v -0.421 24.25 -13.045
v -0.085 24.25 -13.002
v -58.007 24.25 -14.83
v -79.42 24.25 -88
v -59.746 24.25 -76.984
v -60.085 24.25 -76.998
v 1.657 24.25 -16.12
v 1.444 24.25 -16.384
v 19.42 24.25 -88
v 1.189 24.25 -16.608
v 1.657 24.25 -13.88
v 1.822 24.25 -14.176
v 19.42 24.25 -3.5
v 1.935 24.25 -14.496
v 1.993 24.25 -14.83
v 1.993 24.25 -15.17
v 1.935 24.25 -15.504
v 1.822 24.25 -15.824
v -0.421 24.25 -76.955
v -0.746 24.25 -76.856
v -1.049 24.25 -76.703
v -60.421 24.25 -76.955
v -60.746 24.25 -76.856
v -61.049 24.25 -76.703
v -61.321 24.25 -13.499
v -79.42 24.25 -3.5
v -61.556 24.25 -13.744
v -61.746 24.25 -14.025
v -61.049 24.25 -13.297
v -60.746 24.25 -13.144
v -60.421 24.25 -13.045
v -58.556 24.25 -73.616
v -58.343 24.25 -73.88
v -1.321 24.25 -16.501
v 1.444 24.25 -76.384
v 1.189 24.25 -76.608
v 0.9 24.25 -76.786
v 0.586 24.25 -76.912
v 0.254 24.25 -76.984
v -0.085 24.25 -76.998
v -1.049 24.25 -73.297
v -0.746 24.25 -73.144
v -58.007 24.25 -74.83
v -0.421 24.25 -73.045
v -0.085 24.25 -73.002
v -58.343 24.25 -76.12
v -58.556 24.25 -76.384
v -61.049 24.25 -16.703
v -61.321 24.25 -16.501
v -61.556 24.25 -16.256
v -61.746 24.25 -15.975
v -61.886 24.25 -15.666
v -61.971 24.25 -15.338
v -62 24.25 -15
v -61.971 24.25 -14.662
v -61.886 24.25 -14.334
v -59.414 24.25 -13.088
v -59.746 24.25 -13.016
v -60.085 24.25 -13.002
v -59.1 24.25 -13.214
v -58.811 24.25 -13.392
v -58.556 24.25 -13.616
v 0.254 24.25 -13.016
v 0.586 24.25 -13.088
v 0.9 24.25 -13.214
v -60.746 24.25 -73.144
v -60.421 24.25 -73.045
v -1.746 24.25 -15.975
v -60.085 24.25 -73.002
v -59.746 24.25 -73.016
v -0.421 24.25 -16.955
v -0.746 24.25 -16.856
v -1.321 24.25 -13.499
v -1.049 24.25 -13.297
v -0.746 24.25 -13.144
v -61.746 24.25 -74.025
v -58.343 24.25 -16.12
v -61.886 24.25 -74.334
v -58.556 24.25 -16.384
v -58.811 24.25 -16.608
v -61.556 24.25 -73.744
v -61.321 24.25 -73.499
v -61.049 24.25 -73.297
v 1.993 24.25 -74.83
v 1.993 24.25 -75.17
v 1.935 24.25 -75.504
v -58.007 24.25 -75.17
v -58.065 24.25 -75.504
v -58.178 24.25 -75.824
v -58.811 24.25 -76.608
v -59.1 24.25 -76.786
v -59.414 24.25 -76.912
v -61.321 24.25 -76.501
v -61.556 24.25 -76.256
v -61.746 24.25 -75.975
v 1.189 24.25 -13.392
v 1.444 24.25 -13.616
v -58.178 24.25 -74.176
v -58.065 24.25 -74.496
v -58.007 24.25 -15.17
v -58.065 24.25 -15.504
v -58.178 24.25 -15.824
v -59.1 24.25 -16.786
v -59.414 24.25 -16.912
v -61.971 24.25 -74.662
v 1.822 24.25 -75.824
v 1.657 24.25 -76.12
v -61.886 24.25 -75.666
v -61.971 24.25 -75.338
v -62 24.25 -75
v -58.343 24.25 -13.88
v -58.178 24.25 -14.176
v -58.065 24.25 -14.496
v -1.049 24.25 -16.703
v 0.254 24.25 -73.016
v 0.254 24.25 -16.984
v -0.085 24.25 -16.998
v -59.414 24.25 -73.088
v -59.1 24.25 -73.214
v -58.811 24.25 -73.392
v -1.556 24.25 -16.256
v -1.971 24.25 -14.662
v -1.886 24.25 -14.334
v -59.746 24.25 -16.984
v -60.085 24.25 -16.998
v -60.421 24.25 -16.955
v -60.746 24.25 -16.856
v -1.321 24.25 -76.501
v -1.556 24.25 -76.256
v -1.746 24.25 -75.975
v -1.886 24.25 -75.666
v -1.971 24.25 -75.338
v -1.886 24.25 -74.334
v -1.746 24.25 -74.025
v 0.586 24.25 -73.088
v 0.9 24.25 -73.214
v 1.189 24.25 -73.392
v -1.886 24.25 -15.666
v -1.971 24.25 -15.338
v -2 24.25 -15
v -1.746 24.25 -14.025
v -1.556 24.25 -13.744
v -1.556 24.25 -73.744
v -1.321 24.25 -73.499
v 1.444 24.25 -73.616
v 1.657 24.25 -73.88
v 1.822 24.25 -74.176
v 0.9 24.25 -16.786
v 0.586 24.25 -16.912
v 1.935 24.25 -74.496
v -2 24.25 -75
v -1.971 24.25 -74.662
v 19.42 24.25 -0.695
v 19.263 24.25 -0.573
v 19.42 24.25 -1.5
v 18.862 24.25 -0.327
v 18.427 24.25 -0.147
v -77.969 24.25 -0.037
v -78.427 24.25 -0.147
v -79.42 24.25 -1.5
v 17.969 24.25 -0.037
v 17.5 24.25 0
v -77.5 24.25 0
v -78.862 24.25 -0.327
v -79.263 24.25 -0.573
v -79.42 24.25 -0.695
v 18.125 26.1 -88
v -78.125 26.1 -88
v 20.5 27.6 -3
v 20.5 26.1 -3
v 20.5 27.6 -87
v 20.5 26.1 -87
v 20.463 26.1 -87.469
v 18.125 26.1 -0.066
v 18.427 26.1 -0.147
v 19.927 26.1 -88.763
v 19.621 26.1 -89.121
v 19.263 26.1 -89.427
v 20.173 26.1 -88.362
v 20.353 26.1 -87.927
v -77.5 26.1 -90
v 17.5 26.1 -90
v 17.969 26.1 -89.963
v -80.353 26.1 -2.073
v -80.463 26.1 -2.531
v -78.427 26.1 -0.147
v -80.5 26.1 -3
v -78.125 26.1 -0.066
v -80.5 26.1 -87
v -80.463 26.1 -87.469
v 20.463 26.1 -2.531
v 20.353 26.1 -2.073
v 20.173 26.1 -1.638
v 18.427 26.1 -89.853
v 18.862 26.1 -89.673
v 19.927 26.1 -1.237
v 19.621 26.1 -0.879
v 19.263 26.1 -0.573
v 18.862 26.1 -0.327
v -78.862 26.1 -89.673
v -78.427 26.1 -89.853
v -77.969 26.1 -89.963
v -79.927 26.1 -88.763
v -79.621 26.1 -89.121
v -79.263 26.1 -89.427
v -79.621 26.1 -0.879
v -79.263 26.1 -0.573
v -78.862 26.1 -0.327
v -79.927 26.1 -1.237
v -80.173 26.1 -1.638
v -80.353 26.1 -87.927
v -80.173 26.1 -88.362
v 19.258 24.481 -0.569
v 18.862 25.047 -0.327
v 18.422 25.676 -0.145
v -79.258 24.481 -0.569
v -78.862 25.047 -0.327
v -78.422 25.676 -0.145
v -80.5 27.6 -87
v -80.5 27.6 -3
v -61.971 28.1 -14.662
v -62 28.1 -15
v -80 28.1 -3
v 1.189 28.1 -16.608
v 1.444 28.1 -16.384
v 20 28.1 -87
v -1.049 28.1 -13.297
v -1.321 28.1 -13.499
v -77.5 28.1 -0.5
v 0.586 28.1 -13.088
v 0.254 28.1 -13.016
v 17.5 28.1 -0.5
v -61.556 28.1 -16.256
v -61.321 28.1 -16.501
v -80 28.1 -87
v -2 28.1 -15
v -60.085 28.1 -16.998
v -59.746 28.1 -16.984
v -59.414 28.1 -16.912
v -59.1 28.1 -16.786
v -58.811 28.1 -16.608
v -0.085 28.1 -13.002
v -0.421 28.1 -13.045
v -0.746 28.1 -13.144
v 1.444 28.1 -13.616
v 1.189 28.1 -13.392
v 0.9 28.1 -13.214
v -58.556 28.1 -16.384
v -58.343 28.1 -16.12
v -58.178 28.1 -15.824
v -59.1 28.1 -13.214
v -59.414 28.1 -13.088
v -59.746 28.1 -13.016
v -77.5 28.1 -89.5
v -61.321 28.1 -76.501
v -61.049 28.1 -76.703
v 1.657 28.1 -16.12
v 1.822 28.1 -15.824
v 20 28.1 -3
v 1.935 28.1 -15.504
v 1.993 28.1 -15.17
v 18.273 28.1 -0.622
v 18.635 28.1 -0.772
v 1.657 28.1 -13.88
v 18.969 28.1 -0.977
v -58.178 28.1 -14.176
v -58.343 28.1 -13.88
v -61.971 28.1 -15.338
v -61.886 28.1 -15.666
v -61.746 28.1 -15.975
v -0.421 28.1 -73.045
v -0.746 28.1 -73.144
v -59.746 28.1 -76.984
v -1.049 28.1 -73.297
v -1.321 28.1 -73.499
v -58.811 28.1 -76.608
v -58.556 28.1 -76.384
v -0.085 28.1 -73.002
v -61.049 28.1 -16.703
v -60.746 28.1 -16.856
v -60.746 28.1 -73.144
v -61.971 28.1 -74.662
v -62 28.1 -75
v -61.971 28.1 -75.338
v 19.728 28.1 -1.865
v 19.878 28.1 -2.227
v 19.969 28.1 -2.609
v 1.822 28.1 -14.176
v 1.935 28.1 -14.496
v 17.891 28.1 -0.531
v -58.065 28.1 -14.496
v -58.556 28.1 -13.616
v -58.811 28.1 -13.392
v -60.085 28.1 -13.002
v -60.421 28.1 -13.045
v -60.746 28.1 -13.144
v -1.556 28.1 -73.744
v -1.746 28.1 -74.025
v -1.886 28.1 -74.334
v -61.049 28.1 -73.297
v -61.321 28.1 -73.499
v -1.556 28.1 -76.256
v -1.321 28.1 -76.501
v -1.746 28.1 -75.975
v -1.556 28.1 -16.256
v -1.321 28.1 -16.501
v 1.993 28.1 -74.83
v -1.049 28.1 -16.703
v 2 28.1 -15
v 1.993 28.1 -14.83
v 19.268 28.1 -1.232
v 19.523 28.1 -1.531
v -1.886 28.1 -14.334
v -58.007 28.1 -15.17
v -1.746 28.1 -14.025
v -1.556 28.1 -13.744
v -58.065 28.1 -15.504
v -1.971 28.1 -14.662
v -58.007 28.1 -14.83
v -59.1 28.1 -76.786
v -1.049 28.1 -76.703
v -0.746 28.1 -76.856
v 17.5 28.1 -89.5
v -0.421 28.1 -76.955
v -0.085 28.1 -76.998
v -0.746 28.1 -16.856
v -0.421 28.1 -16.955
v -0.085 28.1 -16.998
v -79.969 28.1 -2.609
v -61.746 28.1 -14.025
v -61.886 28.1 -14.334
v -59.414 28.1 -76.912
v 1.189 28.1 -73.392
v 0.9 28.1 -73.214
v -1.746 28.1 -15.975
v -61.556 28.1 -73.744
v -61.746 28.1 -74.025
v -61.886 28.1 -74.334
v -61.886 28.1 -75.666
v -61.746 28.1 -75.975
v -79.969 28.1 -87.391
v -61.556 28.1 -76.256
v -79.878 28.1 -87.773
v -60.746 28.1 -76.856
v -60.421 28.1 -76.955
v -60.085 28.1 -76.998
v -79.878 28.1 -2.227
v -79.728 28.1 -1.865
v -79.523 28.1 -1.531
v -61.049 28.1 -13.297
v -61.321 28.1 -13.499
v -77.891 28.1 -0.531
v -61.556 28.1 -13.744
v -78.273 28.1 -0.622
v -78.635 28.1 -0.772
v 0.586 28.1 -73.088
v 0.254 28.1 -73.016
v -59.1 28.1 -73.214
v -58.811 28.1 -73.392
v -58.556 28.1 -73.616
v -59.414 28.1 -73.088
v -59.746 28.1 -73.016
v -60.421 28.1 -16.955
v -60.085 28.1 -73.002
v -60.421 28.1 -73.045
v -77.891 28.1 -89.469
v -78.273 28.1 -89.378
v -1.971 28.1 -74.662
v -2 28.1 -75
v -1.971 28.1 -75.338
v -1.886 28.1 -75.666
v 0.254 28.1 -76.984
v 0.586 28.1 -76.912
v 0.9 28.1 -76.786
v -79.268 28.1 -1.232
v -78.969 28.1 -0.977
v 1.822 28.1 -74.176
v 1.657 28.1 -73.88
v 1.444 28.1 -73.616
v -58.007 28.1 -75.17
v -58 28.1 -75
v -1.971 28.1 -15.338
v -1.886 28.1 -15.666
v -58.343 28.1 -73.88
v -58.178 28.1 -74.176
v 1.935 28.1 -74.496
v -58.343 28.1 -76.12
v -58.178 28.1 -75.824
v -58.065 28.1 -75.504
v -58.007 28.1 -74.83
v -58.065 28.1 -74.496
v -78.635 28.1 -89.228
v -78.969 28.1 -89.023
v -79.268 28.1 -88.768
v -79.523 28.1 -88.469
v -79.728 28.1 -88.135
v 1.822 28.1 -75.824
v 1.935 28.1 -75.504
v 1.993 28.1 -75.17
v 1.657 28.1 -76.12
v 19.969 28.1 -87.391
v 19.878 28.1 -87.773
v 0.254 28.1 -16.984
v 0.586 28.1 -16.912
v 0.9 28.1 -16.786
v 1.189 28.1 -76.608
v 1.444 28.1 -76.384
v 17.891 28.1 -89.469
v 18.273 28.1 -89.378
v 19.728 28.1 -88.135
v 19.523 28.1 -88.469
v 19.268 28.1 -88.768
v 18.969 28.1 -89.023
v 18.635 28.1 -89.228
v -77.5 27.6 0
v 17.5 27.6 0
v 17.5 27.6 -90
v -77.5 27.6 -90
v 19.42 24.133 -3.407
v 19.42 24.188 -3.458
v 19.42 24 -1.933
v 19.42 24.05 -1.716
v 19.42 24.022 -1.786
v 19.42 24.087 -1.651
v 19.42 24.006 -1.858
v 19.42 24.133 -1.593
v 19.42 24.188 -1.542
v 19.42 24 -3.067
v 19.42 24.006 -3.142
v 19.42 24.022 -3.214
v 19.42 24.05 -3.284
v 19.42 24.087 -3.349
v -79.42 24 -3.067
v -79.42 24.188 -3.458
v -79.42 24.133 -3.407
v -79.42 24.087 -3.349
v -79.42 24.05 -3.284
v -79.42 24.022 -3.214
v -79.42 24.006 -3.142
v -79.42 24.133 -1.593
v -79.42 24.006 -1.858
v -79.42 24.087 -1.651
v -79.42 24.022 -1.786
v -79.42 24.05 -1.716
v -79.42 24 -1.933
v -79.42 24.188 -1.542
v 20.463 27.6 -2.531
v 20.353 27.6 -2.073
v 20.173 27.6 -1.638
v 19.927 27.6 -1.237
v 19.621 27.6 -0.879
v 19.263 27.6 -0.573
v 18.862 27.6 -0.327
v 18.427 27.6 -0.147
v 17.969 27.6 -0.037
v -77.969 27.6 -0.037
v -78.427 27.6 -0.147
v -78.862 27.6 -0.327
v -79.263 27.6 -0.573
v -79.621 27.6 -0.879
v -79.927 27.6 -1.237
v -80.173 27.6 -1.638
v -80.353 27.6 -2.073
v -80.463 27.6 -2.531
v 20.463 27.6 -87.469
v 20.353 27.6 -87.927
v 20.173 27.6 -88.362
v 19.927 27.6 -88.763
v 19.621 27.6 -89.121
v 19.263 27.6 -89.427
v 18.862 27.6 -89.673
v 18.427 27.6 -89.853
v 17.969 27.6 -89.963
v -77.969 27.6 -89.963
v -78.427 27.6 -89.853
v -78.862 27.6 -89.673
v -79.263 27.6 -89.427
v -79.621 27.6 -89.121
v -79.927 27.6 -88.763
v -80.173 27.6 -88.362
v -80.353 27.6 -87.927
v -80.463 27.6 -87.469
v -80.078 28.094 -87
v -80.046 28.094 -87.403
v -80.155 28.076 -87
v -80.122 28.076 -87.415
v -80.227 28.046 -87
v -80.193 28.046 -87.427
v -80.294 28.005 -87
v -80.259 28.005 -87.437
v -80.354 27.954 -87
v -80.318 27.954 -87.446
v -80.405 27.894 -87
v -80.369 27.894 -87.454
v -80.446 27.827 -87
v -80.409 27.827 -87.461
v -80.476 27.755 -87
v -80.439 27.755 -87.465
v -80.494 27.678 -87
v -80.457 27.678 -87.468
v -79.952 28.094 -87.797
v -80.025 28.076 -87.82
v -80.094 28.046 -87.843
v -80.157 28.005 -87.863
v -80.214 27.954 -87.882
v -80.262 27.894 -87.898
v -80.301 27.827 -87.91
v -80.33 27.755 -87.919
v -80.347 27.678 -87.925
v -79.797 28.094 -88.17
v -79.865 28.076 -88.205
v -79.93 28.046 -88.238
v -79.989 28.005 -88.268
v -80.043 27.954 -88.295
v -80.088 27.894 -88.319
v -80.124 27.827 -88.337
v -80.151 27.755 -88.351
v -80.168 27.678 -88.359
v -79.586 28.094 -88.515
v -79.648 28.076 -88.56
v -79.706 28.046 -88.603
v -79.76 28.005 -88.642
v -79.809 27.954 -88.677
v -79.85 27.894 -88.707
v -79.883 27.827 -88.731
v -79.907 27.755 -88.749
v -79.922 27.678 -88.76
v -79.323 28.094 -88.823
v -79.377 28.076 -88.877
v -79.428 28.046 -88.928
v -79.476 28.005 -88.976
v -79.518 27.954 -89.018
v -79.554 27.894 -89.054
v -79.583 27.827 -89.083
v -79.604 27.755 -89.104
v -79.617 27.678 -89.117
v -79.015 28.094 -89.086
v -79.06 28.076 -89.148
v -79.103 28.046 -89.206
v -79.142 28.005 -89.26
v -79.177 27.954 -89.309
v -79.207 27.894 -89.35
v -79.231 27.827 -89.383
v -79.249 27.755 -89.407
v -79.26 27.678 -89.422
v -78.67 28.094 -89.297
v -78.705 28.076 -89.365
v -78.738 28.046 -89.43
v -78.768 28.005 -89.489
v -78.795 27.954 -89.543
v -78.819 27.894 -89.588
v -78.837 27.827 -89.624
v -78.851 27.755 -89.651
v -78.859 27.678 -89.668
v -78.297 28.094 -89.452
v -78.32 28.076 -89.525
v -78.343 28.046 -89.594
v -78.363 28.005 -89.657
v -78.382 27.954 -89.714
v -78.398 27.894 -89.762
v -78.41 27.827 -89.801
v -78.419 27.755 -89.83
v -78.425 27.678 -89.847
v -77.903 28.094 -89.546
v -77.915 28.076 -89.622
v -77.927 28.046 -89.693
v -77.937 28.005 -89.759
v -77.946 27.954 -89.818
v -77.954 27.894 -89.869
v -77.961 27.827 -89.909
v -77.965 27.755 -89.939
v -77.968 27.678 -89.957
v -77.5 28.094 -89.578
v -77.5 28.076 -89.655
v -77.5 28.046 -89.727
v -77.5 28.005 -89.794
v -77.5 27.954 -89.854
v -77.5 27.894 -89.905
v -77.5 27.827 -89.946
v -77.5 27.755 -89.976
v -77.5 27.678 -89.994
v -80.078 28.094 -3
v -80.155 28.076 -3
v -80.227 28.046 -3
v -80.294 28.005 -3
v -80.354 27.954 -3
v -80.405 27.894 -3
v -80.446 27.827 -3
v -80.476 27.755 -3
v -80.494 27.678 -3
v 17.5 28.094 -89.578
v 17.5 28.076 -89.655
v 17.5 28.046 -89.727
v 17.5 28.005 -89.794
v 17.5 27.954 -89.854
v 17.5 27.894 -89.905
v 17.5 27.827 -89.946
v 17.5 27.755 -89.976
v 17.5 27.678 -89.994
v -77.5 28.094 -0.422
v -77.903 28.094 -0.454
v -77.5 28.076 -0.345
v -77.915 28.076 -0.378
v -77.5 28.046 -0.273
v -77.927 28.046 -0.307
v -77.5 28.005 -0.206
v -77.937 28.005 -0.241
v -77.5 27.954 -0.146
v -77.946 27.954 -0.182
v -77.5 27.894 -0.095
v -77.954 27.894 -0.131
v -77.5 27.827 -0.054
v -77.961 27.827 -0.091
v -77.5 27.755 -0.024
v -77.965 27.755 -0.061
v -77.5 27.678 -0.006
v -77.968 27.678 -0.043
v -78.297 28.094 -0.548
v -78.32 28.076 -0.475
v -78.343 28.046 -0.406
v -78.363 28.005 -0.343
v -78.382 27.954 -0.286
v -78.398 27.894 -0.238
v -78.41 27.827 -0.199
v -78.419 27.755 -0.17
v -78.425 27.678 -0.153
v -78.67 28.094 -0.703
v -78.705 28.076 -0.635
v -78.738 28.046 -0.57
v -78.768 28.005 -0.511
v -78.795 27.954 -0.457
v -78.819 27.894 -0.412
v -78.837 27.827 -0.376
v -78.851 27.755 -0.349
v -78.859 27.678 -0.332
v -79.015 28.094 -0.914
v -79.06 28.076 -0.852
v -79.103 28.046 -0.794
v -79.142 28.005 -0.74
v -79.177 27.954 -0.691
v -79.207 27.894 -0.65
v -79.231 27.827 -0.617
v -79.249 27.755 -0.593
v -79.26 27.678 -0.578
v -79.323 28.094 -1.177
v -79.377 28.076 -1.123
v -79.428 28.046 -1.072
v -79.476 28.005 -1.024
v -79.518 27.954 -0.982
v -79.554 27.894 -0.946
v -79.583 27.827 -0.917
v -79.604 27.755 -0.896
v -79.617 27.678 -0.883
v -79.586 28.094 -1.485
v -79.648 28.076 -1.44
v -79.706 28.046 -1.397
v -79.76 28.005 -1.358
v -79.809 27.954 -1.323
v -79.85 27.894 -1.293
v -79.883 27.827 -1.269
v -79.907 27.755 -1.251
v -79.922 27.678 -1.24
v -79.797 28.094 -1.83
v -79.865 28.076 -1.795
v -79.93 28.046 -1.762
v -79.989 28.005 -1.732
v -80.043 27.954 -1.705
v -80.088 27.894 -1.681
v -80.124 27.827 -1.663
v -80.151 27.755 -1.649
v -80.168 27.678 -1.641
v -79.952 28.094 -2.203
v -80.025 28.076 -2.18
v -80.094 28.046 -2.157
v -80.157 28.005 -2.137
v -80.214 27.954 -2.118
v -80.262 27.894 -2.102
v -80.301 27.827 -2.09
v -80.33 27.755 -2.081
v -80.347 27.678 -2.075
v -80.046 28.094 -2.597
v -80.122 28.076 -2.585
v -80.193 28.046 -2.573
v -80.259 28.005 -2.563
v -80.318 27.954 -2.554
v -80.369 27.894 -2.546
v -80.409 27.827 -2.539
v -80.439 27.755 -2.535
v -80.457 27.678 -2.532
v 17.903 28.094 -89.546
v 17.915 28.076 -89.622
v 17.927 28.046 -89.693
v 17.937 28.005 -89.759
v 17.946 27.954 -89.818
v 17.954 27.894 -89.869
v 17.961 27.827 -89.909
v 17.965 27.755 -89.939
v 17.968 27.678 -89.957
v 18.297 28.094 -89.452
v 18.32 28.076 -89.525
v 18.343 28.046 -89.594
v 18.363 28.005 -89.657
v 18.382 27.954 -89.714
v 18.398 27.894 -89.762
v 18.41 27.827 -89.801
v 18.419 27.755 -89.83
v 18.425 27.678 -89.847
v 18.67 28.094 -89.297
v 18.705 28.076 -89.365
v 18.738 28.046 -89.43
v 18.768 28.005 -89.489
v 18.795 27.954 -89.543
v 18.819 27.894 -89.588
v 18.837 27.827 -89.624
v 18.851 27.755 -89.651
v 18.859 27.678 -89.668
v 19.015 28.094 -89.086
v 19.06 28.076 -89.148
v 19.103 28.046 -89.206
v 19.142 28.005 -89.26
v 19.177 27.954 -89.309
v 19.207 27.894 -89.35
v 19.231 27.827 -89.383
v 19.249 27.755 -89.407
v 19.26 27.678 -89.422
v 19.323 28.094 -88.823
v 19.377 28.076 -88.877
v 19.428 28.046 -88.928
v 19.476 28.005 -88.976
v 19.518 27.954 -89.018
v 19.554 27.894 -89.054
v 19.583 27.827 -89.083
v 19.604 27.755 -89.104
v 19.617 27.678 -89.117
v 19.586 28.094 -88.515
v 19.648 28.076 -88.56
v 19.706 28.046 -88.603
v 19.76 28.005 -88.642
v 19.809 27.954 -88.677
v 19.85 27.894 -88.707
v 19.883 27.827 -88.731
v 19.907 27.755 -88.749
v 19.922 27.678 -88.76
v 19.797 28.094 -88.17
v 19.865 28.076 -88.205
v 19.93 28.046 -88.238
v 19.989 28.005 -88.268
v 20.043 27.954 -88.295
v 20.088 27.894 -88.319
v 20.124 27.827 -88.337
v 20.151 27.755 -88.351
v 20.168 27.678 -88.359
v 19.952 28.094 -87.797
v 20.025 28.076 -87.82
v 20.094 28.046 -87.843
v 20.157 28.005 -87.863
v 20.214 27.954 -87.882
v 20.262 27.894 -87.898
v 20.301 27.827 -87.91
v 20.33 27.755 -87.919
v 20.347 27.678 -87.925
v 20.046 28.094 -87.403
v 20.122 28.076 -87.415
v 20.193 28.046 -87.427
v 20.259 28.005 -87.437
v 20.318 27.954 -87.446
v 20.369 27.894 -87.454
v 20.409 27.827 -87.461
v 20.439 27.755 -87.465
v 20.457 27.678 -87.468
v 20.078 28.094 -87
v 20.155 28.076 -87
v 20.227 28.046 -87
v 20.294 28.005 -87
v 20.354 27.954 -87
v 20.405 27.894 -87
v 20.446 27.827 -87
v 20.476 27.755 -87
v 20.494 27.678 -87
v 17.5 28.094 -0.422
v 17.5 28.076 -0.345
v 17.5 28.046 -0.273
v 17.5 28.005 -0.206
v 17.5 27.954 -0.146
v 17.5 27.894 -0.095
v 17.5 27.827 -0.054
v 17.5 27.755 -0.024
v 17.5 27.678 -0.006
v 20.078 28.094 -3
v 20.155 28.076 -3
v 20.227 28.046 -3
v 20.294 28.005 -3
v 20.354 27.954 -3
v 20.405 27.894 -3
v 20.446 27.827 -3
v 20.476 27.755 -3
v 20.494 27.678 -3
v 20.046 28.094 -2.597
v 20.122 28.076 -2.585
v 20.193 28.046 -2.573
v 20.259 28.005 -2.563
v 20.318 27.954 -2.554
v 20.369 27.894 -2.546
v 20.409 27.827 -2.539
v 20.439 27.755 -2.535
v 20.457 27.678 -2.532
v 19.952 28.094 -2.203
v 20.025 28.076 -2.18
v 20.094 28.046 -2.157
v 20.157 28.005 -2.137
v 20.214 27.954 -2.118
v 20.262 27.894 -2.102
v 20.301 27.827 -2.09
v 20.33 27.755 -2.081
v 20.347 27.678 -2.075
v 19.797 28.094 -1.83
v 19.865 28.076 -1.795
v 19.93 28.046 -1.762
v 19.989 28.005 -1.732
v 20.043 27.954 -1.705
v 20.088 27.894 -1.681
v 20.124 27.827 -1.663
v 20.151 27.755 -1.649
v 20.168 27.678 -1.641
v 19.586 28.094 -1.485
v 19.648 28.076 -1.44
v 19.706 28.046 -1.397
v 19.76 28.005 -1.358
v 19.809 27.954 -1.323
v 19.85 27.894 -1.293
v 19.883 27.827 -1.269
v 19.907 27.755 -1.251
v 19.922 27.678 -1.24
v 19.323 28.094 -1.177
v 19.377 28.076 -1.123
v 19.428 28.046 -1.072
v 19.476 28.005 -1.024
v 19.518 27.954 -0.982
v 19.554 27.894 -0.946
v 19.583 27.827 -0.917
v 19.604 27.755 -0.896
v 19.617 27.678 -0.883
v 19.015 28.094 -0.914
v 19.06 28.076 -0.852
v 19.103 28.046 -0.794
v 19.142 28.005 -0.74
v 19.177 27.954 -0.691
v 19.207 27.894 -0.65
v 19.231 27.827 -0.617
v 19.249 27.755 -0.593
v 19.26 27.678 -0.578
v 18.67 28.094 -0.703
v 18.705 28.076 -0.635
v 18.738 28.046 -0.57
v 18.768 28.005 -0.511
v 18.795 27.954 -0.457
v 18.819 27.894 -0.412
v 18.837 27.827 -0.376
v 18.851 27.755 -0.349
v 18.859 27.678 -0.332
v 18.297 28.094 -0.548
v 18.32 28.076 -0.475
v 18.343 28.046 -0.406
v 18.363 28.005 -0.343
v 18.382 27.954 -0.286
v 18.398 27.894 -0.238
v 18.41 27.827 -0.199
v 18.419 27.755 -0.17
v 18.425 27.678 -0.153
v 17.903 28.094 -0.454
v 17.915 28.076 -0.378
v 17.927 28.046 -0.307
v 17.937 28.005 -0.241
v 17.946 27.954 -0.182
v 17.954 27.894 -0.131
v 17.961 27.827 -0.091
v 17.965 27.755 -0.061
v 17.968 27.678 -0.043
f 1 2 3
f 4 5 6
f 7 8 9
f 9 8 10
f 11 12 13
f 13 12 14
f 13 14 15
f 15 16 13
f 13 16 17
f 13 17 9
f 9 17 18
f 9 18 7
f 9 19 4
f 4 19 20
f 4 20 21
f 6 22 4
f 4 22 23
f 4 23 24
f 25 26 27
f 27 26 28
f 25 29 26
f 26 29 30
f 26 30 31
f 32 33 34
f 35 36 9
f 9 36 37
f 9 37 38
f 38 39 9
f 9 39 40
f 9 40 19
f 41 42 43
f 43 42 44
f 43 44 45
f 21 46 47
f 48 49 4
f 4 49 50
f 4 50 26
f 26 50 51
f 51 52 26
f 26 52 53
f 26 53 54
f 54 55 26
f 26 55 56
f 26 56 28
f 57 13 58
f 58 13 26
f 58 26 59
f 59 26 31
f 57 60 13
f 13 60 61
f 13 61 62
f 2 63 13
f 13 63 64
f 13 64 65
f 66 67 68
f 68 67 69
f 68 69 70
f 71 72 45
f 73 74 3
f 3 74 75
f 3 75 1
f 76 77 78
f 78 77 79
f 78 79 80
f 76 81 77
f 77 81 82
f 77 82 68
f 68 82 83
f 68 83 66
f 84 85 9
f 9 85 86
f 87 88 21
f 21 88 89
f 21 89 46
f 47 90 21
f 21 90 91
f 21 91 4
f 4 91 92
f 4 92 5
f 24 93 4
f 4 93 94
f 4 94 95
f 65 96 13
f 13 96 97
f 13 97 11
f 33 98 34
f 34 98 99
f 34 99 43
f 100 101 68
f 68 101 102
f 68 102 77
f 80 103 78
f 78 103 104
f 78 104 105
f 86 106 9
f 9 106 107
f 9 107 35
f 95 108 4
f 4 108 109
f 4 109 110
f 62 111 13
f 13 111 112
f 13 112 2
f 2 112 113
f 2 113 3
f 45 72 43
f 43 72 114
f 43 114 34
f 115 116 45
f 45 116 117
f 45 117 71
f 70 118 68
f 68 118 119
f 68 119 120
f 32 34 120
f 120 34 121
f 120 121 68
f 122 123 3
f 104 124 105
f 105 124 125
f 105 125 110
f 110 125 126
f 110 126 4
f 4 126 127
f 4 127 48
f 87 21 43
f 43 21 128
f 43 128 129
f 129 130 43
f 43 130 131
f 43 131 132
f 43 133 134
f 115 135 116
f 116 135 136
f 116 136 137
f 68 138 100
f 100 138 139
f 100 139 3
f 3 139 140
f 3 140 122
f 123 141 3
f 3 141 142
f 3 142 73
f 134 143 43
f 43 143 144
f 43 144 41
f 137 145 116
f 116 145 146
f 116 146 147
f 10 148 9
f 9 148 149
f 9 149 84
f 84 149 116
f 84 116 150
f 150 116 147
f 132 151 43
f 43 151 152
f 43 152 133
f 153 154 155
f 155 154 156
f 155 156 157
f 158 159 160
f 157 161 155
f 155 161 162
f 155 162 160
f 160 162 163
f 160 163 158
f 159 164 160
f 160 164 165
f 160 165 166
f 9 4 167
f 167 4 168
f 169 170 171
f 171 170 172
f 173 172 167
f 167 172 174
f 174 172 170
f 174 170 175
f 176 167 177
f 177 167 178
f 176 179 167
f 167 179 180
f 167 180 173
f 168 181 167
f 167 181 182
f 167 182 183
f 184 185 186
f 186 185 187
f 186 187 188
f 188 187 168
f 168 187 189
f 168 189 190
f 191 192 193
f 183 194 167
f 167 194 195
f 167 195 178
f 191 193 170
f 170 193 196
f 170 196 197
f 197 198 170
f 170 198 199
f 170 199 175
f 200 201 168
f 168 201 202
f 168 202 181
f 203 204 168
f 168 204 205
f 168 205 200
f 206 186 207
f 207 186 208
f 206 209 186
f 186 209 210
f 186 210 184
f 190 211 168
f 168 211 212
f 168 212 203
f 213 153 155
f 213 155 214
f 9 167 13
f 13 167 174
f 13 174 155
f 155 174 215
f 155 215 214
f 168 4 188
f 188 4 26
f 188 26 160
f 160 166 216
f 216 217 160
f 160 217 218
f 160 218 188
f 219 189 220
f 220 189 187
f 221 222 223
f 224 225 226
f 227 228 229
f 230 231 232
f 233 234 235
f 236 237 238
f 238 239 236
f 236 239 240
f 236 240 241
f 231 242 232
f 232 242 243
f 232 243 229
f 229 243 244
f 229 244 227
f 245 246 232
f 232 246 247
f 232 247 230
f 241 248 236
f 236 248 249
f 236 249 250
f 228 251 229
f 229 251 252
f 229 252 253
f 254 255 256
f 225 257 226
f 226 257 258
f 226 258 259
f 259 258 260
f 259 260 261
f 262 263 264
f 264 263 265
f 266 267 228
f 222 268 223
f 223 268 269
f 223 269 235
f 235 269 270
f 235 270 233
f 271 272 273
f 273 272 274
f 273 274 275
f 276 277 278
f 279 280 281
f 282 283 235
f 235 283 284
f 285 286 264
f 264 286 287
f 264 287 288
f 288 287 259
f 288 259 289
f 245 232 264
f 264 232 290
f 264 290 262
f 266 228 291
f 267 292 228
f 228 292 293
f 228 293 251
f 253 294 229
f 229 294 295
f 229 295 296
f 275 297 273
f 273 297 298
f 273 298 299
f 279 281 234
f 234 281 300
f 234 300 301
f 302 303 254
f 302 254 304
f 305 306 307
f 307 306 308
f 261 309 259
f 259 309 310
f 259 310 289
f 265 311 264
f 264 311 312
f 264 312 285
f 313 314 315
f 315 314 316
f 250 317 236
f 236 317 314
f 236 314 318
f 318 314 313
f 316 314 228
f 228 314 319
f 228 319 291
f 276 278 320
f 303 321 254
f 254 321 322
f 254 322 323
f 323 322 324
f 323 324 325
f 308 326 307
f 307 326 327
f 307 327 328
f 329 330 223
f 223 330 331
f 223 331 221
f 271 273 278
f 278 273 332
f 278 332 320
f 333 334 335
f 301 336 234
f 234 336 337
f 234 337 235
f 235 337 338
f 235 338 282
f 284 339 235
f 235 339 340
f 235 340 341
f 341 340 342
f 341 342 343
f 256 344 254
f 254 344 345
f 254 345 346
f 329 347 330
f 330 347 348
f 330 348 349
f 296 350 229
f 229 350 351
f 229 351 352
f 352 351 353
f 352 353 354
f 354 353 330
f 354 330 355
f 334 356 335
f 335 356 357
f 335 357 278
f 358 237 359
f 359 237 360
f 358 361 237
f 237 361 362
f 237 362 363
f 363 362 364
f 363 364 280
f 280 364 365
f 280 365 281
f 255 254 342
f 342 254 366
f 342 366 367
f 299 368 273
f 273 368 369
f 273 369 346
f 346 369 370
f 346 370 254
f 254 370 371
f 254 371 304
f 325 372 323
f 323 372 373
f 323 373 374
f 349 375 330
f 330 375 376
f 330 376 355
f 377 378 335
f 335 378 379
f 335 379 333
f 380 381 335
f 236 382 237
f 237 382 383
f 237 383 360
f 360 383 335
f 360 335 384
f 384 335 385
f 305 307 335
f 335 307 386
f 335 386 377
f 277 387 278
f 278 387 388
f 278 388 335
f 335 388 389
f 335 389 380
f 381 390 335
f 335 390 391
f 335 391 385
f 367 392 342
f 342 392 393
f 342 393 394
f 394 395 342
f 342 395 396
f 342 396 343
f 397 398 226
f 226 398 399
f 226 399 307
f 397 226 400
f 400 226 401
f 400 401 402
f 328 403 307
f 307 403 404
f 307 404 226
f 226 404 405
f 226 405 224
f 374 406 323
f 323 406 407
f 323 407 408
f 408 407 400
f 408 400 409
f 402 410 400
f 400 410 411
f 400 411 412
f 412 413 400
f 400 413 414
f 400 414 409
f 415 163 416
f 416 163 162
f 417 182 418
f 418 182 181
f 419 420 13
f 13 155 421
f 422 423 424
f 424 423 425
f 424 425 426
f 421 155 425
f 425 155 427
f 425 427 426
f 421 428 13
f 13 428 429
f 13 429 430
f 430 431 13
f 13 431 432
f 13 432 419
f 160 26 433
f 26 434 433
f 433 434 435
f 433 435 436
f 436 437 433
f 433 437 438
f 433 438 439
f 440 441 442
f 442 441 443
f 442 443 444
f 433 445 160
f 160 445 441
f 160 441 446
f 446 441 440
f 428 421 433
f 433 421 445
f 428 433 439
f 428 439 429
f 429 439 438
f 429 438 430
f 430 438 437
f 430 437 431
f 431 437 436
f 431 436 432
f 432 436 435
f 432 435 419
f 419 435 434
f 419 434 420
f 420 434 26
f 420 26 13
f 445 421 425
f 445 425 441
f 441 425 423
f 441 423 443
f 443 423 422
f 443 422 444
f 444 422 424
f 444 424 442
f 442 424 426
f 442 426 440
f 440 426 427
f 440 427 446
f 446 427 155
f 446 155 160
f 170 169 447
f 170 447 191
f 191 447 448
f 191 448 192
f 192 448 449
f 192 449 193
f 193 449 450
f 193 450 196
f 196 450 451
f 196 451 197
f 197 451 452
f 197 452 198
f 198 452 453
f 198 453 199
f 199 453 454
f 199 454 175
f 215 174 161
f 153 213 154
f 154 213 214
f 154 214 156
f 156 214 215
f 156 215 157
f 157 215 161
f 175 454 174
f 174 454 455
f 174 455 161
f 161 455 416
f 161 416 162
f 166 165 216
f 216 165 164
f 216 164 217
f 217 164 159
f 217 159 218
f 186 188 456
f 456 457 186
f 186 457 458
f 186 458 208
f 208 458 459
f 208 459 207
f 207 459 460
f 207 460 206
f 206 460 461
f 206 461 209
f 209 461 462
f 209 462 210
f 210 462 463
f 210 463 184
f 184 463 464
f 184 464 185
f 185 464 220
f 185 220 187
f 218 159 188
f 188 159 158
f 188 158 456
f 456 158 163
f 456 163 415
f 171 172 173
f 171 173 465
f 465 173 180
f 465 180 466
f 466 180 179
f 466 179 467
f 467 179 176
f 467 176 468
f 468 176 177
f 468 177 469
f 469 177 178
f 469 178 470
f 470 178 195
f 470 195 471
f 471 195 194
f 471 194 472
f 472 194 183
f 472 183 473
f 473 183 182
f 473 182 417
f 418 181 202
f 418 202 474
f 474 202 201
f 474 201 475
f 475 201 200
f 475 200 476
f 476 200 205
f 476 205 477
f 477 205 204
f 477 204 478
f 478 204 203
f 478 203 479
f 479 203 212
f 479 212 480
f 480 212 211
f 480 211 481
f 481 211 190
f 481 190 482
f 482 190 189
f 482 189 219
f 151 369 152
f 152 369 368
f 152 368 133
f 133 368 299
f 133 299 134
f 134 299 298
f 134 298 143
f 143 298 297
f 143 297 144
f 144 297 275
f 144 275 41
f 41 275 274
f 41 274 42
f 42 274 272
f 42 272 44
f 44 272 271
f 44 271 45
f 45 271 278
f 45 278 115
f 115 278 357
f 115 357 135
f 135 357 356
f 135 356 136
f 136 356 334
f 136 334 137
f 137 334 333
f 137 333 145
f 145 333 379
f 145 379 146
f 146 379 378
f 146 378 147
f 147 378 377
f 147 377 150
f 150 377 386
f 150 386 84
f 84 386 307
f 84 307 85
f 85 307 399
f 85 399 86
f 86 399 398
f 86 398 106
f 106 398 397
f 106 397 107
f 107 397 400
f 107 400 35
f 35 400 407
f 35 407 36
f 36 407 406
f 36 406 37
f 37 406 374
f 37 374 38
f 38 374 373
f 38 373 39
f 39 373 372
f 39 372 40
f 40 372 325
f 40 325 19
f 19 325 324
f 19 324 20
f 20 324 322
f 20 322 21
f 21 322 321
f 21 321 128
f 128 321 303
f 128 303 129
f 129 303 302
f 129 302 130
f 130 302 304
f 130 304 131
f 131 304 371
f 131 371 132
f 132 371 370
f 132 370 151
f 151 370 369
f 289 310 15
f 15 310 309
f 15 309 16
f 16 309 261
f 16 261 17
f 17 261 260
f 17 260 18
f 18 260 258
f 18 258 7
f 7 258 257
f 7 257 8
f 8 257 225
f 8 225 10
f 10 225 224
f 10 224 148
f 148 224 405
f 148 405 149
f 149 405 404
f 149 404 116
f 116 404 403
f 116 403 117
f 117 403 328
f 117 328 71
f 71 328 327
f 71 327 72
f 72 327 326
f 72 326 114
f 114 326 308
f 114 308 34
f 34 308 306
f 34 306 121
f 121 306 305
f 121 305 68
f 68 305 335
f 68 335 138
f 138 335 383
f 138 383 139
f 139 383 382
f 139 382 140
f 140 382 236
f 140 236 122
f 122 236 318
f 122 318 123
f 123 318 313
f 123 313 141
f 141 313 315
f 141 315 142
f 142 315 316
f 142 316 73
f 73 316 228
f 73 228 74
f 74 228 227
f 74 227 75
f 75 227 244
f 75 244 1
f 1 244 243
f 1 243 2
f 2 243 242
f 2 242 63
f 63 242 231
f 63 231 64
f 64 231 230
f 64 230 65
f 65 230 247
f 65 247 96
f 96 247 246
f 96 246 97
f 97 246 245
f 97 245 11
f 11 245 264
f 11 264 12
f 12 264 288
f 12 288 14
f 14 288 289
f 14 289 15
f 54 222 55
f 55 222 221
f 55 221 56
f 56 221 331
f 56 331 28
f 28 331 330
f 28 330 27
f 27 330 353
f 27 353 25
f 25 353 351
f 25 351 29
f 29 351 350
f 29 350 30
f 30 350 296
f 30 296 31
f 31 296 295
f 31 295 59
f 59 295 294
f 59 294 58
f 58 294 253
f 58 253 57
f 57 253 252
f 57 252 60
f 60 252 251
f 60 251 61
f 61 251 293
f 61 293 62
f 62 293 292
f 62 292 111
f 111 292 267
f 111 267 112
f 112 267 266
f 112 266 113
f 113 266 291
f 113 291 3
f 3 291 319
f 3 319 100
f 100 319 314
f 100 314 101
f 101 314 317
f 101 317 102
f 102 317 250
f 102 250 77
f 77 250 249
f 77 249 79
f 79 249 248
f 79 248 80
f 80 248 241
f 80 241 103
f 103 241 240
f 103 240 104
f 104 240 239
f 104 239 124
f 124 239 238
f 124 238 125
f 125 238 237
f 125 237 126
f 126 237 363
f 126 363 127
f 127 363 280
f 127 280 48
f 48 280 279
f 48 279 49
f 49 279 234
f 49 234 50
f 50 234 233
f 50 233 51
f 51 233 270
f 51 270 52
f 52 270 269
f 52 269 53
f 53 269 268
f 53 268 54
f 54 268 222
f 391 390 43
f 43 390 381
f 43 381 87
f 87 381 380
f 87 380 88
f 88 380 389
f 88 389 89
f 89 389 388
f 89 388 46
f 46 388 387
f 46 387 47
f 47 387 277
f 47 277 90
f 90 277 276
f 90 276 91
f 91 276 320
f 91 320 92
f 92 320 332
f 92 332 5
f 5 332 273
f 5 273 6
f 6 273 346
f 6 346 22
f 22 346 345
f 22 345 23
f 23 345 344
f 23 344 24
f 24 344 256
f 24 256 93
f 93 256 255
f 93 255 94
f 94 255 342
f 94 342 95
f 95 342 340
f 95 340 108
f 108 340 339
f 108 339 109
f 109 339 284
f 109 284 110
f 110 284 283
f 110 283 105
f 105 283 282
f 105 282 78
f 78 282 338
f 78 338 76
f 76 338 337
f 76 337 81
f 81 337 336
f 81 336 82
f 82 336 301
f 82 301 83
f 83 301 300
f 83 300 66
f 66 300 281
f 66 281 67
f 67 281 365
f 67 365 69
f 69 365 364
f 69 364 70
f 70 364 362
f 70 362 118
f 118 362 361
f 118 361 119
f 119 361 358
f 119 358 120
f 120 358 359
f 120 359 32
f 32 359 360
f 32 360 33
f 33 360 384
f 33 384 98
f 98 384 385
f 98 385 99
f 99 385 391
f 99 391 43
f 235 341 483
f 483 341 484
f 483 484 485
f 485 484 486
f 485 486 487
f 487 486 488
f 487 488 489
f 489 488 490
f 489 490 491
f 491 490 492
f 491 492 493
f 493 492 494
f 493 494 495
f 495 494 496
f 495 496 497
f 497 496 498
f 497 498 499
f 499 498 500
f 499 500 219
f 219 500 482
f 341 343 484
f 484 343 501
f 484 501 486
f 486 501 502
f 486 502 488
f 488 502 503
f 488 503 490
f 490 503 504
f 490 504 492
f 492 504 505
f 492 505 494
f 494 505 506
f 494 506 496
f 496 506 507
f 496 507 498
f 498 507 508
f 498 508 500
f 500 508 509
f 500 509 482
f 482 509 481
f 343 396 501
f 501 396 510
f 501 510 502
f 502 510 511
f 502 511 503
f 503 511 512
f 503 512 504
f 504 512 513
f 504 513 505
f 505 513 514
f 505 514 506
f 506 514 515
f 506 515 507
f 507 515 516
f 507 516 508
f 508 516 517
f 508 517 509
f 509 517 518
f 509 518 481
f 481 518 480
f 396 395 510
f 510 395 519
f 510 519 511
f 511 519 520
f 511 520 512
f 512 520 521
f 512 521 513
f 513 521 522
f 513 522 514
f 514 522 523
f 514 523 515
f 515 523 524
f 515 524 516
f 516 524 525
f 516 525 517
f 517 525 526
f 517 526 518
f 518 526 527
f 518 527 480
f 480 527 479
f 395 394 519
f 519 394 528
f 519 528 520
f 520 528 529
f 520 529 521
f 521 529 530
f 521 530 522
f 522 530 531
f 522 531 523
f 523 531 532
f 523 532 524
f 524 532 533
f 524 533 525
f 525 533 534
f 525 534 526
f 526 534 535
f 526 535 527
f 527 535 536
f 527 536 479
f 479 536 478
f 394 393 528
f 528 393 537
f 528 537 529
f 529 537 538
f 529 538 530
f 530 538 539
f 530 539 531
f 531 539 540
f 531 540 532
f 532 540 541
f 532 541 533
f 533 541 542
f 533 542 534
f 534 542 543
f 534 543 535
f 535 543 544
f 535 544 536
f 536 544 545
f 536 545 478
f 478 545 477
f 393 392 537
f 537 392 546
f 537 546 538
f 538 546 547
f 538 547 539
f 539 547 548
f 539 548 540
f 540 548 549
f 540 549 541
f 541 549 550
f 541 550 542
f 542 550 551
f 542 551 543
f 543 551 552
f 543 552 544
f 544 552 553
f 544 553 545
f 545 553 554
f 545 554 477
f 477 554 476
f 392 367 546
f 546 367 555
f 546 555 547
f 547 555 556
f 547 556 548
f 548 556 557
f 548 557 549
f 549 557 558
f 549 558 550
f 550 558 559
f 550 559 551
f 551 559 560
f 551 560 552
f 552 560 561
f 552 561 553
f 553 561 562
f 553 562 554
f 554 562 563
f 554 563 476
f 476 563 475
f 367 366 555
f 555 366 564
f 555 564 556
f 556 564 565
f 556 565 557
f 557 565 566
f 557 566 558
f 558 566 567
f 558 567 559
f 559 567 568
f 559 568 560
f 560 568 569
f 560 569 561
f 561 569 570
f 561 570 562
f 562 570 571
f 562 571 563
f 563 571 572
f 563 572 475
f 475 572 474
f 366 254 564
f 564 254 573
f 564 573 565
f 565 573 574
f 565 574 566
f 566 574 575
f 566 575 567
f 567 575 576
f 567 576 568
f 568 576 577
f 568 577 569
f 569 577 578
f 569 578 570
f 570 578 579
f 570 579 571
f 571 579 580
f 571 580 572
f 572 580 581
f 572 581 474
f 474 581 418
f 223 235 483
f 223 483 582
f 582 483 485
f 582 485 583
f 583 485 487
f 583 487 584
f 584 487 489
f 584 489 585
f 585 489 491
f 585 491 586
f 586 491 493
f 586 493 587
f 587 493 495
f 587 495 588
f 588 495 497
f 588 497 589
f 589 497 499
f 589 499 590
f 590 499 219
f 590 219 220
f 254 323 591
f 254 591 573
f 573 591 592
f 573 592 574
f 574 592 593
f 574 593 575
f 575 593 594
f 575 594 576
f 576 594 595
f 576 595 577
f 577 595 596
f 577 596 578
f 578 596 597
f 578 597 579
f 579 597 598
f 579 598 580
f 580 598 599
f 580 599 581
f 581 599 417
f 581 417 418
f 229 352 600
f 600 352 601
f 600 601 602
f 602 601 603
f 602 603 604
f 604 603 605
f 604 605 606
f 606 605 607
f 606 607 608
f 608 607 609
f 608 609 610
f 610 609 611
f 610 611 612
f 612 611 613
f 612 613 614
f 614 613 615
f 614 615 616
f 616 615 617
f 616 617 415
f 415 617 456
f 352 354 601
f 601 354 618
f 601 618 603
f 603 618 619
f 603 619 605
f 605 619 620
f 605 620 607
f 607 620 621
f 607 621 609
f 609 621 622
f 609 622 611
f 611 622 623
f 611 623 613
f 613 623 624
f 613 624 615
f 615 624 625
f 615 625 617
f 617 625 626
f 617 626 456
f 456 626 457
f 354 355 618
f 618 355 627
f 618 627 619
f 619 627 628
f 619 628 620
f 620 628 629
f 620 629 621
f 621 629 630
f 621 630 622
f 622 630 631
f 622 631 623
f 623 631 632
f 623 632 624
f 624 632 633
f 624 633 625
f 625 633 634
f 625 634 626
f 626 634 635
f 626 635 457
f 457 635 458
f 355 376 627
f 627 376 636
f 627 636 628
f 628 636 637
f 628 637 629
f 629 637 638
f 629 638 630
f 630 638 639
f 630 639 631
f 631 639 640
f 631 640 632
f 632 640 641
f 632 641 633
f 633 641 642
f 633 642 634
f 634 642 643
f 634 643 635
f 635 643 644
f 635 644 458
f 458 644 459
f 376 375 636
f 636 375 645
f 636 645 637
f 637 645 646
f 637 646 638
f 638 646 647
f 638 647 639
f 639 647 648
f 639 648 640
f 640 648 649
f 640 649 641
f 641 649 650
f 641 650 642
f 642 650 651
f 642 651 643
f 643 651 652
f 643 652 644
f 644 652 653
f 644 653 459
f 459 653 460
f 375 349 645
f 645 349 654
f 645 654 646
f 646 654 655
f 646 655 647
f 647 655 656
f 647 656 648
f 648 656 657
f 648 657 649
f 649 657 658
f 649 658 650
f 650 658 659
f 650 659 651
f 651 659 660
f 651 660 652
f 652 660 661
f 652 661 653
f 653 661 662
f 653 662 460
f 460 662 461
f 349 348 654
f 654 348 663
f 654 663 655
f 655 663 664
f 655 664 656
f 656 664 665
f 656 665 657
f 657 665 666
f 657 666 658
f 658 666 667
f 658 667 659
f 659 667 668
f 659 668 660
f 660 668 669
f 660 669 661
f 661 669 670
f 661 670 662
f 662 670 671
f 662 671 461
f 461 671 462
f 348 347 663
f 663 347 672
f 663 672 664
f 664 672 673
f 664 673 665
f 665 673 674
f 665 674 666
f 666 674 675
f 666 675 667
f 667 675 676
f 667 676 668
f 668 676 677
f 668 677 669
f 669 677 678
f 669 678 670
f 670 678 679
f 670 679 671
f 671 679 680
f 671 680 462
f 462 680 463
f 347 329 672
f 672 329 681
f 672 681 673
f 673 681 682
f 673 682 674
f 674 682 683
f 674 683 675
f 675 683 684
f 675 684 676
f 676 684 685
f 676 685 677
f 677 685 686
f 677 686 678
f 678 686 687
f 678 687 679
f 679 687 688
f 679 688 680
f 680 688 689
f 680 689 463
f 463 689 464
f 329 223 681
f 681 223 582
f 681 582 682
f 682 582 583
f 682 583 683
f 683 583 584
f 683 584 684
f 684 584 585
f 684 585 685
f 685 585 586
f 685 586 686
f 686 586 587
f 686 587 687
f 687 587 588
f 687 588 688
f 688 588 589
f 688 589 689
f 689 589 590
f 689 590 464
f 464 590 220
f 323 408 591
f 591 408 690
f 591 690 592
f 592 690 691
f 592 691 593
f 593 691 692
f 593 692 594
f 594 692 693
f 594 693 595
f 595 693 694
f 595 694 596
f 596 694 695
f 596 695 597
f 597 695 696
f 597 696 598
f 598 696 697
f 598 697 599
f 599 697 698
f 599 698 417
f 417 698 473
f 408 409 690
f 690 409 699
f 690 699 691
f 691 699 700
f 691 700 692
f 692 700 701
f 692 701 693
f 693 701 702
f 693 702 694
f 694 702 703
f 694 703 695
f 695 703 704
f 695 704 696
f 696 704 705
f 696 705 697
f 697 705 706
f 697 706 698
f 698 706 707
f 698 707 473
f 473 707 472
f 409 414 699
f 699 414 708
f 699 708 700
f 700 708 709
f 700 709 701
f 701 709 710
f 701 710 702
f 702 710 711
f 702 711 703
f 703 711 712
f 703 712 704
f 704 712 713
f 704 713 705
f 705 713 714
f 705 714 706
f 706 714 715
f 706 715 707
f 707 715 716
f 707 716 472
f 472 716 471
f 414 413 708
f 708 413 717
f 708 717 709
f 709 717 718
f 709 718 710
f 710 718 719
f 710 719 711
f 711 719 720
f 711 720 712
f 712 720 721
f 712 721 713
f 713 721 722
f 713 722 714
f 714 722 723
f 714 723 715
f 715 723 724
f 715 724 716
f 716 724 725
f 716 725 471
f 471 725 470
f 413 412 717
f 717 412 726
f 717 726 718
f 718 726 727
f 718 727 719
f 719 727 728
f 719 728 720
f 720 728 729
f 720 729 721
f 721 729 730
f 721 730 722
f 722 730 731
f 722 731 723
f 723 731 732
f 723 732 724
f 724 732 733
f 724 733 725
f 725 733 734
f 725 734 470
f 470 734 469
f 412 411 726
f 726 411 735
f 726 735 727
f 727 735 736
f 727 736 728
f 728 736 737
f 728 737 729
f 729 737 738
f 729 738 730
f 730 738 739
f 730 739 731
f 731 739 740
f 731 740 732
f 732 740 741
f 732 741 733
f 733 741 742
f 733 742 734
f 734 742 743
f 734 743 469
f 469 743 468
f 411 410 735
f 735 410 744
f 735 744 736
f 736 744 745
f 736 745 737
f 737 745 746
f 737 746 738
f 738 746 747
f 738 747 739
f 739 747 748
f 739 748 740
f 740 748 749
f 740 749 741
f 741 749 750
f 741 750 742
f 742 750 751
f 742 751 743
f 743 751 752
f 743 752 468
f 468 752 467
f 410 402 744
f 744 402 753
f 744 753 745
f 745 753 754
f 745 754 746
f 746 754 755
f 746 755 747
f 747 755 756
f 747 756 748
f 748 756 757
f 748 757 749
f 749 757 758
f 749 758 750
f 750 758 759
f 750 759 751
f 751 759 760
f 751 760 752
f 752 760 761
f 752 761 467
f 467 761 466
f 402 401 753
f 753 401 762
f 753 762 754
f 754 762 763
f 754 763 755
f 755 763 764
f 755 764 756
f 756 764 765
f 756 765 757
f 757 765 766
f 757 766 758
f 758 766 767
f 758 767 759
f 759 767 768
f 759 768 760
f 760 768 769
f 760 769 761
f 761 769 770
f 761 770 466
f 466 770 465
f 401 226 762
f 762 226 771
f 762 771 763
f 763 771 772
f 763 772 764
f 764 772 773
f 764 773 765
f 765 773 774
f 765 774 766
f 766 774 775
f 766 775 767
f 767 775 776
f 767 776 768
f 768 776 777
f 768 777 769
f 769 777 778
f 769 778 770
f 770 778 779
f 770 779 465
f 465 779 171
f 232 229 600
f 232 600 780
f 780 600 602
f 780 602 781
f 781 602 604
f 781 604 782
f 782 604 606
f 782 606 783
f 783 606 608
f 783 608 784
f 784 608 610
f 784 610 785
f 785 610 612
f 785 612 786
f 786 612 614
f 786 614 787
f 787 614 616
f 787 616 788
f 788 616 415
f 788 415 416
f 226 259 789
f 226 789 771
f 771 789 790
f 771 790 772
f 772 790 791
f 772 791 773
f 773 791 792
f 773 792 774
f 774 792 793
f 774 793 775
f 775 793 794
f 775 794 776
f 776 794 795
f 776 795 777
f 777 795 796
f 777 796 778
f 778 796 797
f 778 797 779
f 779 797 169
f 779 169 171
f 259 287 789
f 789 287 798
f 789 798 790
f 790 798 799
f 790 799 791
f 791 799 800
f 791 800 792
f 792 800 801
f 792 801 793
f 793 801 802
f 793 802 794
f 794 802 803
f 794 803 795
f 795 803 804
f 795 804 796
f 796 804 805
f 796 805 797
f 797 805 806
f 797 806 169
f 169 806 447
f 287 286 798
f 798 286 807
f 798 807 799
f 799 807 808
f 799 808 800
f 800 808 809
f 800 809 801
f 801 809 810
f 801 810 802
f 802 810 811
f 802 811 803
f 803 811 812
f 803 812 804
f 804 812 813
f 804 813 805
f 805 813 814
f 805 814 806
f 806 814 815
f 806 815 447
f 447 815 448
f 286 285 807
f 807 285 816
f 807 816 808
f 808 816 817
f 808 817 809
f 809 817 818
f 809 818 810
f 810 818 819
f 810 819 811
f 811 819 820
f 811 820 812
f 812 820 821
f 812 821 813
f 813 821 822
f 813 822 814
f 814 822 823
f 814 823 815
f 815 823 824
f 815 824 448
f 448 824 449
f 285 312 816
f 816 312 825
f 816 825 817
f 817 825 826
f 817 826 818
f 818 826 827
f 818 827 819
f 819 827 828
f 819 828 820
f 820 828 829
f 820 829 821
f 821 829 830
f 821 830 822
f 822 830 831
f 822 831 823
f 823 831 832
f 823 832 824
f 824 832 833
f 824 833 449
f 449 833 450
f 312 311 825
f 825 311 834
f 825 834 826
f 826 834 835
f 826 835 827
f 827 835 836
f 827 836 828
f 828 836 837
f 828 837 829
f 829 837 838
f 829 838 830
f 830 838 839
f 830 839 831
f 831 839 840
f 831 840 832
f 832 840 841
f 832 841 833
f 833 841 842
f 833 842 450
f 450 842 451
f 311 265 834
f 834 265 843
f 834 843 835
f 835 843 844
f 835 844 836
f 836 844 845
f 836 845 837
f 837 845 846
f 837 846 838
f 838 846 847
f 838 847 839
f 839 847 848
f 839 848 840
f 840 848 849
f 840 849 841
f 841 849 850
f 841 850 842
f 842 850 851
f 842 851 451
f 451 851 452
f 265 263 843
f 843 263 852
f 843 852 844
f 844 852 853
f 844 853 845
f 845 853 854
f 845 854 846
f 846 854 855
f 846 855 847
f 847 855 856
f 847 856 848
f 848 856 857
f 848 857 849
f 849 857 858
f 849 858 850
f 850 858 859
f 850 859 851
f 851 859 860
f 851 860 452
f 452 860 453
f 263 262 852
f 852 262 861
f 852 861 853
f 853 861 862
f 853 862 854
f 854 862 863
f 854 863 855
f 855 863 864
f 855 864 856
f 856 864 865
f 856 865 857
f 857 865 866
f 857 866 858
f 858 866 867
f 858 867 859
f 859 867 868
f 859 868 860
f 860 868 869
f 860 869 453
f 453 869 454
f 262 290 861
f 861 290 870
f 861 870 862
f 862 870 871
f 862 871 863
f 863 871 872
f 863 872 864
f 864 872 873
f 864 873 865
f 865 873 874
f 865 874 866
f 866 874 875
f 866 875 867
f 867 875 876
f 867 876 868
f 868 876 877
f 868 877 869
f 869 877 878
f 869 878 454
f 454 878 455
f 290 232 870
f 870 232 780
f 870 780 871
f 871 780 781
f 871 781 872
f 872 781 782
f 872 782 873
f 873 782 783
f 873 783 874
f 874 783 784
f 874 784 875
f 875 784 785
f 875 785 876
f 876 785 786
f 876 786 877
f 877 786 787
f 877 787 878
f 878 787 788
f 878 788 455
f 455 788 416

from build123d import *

# Parameters (mm, degrees)
BOSS_EXTRUDE1_DEPTH = 88
SKETCH2_W           = 101
SKETCH2_H           = 2
BOSS_EXTRUDE2_DEPTH = 2
SKETCH3_W           = 98.84033909
SKETCH3_H           = 2
BOSS_EXTRUDE3_DEPTH = 0.25
FILLET2_R           = 0.5
FILLET1_R           = 3
CUT_EXTRUDE1_REACH  = 122.818
SKETCH4_R           = 2
FILLET3_R           = 0.5


with BuildPart() as part:
    # Sketch1 → Boss-Extrude1 (new body)
    with BuildSketch(Plane.XY):
        Polygon((19.420169545, 24.25), (18.194806353, 26), (18.124785599, 26.1), (20.5, 26.1), (20.5, 28.1), (-80.5, 28.1), (-80.5, 26.1), (-78.124785599, 26.1), (-79.420169545, 24.25), align=None)
    extrude(amount=-BOSS_EXTRUDE1_DEPTH)

    # Sketch2 → Boss-Extrude2 (add)
    with BuildSketch(Plane(origin=(0, 0, -88), x_dir=(-1, 0, 0), z_dir=(0, 0, -1))):
        with Locations((30, 27.1)):
            Rectangle(SKETCH2_W, SKETCH2_H)
    extrude(amount=BOSS_EXTRUDE2_DEPTH)

    # Sketch3 → Boss-Extrude3 (add)
    with BuildSketch(Plane.XZ.offset(-24.25)):
        with Locations((-30, -2.5)):
            Rectangle(SKETCH3_W, SKETCH3_H)
    extrude(amount=BOSS_EXTRUDE3_DEPTH)

    # Fillet2
    # the kernel refuses this fillet: 0.5 mm, written as the material it takes off along each edge
    with BuildSketch(Plane(origin=(-80.502701299, 24, -3.5), x_dir=(0, 0, 1), z_dir=(1, 0, 0))) as fillet2_piece_1:
        with BuildLine():
            CenterArc((0.433012702, -0.5), FILLET2_R, 90, 60)
            Line((0, -0.25), (-0.008660254, -0.245))
            ThreePointArc((-0.008660254, -0.245), (-0.01, -0.125), (-0.01, 0))
            Line((-0.01, 0), (0, 0.01))
            Line((0, 0.01), (0.433012702, 0.01))
            Line((0.433012702, 0.01), (0.433012702, 0))
        make_face()
    extrude(amount=101.005402599, mode=Mode.SUBTRACT)
    with BuildSketch(Plane(origin=(20.502701299, 24, -1.5), x_dir=(0, 1, 0), z_dir=(-1, 0, 0))) as fillet2_piece_2:
        with BuildLine():
            CenterArc((0.5, 0.433012702), FILLET2_R, 180, 60)
            Line((0, 0.433012702), (-0.01, 0.433012702))
            Line((-0.01, 0.433012702), (-0.01, 0))
            Line((-0.01, 0), (0, -0.01))
            ThreePointArc((0, -0.01), (0.125, -0.01), (0.245, -0.008660254))
            Line((0.245, -0.008660254), (0.25, 0))
        make_face()
    extrude(amount=101.005402599, mode=Mode.SUBTRACT)

    # Fillet1
    fillet1_edges = [part.edges().sort_by_distance(p)[0] for p in [
        (-80.5, 27.1, -90),
        (20.5, 27.1, -90),
        (20.5, 27.1, 0),
        (-80.5, 27.1, 0),
    ]]
    fillet(fillet1_edges, radius=FILLET1_R)

    # Sketch4 → Cut-Extrude1 (cut, up to next)
    with BuildSketch(Plane(origin=(0, 28.1, 0), x_dir=(1, 0, 0), z_dir=(0, 1, 0)), mode=Mode.PRIVATE) as cut_extrude1_sk1:
        with Locations(Location((0, 75, 0), (0, 0, 180))):
            Circle(SKETCH4_R)
    cut_extrude1_tool1 = extrude(cut_extrude1_sk1.sketch, amount=-CUT_EXTRUDE1_REACH, mode=Mode.PRIVATE) & part.part
    # Sketch4 → Cut-Extrude1 (cut, up to next)
    with BuildSketch(Plane(origin=(0, 28.1, 0), x_dir=(1, 0, 0), z_dir=(0, 1, 0)), mode=Mode.PRIVATE) as cut_extrude1_sk2:
        with Locations(Location((0, 15, 0), (0, 0, 180))):
            Circle(SKETCH4_R)
    cut_extrude1_tool2 = extrude(cut_extrude1_sk2.sketch, amount=-CUT_EXTRUDE1_REACH, mode=Mode.PRIVATE) & part.part
    # Sketch4 → Cut-Extrude1 (cut, up to next)
    with BuildSketch(Plane(origin=(0, 28.1, 0), x_dir=(1, 0, 0), z_dir=(0, 1, 0)), mode=Mode.PRIVATE) as cut_extrude1_sk3:
        with Locations(Location((-60, 15, 0), (0, 0, 180))):
            Circle(SKETCH4_R)
    cut_extrude1_tool3 = extrude(cut_extrude1_sk3.sketch, amount=-CUT_EXTRUDE1_REACH, mode=Mode.PRIVATE) & part.part
    # Sketch4 → Cut-Extrude1 (cut, up to next)
    with BuildSketch(Plane(origin=(0, 28.1, 0), x_dir=(1, 0, 0), z_dir=(0, 1, 0)), mode=Mode.PRIVATE) as cut_extrude1_sk4:
        with Locations(Location((-60, 75, 0), (0, 0, 180))):
            Circle(SKETCH4_R)
    cut_extrude1_tool4 = extrude(cut_extrude1_sk4.sketch, amount=-CUT_EXTRUDE1_REACH, mode=Mode.PRIVATE) & part.part
    add(cut_extrude1_tool1.solids().sort_by_distance((0, 28.1, -75))[0], mode=Mode.SUBTRACT)
    add(cut_extrude1_tool2.solids().sort_by_distance((0, 28.1, -15))[0], mode=Mode.SUBTRACT)
    add(cut_extrude1_tool3.solids().sort_by_distance((-60, 28.1, -15))[0], mode=Mode.SUBTRACT)
    add(cut_extrude1_tool4.solids().sort_by_distance((-60, 28.1, -75))[0], mode=Mode.SUBTRACT)

    # Fillet3
    fillet3_edges = [part.edges().sort_by_distance(p)[0] for p in [
        (-30, 28.1, 0),
        (20.5, 28.1, -45),
        (-30, 28.1, -90),
        (-80.5, 28.1, -45),
        (-79.621320344, 28.1, -89.121320344),
        (19.621320344, 28.1, -89.121320344),
        (-79.621320344, 28.1, -0.878679656),
        (19.621320344, 28.1, -0.878679656),
    ]]
    fillet(fillet3_edges, radius=FILLET3_R)


solid = part.part
